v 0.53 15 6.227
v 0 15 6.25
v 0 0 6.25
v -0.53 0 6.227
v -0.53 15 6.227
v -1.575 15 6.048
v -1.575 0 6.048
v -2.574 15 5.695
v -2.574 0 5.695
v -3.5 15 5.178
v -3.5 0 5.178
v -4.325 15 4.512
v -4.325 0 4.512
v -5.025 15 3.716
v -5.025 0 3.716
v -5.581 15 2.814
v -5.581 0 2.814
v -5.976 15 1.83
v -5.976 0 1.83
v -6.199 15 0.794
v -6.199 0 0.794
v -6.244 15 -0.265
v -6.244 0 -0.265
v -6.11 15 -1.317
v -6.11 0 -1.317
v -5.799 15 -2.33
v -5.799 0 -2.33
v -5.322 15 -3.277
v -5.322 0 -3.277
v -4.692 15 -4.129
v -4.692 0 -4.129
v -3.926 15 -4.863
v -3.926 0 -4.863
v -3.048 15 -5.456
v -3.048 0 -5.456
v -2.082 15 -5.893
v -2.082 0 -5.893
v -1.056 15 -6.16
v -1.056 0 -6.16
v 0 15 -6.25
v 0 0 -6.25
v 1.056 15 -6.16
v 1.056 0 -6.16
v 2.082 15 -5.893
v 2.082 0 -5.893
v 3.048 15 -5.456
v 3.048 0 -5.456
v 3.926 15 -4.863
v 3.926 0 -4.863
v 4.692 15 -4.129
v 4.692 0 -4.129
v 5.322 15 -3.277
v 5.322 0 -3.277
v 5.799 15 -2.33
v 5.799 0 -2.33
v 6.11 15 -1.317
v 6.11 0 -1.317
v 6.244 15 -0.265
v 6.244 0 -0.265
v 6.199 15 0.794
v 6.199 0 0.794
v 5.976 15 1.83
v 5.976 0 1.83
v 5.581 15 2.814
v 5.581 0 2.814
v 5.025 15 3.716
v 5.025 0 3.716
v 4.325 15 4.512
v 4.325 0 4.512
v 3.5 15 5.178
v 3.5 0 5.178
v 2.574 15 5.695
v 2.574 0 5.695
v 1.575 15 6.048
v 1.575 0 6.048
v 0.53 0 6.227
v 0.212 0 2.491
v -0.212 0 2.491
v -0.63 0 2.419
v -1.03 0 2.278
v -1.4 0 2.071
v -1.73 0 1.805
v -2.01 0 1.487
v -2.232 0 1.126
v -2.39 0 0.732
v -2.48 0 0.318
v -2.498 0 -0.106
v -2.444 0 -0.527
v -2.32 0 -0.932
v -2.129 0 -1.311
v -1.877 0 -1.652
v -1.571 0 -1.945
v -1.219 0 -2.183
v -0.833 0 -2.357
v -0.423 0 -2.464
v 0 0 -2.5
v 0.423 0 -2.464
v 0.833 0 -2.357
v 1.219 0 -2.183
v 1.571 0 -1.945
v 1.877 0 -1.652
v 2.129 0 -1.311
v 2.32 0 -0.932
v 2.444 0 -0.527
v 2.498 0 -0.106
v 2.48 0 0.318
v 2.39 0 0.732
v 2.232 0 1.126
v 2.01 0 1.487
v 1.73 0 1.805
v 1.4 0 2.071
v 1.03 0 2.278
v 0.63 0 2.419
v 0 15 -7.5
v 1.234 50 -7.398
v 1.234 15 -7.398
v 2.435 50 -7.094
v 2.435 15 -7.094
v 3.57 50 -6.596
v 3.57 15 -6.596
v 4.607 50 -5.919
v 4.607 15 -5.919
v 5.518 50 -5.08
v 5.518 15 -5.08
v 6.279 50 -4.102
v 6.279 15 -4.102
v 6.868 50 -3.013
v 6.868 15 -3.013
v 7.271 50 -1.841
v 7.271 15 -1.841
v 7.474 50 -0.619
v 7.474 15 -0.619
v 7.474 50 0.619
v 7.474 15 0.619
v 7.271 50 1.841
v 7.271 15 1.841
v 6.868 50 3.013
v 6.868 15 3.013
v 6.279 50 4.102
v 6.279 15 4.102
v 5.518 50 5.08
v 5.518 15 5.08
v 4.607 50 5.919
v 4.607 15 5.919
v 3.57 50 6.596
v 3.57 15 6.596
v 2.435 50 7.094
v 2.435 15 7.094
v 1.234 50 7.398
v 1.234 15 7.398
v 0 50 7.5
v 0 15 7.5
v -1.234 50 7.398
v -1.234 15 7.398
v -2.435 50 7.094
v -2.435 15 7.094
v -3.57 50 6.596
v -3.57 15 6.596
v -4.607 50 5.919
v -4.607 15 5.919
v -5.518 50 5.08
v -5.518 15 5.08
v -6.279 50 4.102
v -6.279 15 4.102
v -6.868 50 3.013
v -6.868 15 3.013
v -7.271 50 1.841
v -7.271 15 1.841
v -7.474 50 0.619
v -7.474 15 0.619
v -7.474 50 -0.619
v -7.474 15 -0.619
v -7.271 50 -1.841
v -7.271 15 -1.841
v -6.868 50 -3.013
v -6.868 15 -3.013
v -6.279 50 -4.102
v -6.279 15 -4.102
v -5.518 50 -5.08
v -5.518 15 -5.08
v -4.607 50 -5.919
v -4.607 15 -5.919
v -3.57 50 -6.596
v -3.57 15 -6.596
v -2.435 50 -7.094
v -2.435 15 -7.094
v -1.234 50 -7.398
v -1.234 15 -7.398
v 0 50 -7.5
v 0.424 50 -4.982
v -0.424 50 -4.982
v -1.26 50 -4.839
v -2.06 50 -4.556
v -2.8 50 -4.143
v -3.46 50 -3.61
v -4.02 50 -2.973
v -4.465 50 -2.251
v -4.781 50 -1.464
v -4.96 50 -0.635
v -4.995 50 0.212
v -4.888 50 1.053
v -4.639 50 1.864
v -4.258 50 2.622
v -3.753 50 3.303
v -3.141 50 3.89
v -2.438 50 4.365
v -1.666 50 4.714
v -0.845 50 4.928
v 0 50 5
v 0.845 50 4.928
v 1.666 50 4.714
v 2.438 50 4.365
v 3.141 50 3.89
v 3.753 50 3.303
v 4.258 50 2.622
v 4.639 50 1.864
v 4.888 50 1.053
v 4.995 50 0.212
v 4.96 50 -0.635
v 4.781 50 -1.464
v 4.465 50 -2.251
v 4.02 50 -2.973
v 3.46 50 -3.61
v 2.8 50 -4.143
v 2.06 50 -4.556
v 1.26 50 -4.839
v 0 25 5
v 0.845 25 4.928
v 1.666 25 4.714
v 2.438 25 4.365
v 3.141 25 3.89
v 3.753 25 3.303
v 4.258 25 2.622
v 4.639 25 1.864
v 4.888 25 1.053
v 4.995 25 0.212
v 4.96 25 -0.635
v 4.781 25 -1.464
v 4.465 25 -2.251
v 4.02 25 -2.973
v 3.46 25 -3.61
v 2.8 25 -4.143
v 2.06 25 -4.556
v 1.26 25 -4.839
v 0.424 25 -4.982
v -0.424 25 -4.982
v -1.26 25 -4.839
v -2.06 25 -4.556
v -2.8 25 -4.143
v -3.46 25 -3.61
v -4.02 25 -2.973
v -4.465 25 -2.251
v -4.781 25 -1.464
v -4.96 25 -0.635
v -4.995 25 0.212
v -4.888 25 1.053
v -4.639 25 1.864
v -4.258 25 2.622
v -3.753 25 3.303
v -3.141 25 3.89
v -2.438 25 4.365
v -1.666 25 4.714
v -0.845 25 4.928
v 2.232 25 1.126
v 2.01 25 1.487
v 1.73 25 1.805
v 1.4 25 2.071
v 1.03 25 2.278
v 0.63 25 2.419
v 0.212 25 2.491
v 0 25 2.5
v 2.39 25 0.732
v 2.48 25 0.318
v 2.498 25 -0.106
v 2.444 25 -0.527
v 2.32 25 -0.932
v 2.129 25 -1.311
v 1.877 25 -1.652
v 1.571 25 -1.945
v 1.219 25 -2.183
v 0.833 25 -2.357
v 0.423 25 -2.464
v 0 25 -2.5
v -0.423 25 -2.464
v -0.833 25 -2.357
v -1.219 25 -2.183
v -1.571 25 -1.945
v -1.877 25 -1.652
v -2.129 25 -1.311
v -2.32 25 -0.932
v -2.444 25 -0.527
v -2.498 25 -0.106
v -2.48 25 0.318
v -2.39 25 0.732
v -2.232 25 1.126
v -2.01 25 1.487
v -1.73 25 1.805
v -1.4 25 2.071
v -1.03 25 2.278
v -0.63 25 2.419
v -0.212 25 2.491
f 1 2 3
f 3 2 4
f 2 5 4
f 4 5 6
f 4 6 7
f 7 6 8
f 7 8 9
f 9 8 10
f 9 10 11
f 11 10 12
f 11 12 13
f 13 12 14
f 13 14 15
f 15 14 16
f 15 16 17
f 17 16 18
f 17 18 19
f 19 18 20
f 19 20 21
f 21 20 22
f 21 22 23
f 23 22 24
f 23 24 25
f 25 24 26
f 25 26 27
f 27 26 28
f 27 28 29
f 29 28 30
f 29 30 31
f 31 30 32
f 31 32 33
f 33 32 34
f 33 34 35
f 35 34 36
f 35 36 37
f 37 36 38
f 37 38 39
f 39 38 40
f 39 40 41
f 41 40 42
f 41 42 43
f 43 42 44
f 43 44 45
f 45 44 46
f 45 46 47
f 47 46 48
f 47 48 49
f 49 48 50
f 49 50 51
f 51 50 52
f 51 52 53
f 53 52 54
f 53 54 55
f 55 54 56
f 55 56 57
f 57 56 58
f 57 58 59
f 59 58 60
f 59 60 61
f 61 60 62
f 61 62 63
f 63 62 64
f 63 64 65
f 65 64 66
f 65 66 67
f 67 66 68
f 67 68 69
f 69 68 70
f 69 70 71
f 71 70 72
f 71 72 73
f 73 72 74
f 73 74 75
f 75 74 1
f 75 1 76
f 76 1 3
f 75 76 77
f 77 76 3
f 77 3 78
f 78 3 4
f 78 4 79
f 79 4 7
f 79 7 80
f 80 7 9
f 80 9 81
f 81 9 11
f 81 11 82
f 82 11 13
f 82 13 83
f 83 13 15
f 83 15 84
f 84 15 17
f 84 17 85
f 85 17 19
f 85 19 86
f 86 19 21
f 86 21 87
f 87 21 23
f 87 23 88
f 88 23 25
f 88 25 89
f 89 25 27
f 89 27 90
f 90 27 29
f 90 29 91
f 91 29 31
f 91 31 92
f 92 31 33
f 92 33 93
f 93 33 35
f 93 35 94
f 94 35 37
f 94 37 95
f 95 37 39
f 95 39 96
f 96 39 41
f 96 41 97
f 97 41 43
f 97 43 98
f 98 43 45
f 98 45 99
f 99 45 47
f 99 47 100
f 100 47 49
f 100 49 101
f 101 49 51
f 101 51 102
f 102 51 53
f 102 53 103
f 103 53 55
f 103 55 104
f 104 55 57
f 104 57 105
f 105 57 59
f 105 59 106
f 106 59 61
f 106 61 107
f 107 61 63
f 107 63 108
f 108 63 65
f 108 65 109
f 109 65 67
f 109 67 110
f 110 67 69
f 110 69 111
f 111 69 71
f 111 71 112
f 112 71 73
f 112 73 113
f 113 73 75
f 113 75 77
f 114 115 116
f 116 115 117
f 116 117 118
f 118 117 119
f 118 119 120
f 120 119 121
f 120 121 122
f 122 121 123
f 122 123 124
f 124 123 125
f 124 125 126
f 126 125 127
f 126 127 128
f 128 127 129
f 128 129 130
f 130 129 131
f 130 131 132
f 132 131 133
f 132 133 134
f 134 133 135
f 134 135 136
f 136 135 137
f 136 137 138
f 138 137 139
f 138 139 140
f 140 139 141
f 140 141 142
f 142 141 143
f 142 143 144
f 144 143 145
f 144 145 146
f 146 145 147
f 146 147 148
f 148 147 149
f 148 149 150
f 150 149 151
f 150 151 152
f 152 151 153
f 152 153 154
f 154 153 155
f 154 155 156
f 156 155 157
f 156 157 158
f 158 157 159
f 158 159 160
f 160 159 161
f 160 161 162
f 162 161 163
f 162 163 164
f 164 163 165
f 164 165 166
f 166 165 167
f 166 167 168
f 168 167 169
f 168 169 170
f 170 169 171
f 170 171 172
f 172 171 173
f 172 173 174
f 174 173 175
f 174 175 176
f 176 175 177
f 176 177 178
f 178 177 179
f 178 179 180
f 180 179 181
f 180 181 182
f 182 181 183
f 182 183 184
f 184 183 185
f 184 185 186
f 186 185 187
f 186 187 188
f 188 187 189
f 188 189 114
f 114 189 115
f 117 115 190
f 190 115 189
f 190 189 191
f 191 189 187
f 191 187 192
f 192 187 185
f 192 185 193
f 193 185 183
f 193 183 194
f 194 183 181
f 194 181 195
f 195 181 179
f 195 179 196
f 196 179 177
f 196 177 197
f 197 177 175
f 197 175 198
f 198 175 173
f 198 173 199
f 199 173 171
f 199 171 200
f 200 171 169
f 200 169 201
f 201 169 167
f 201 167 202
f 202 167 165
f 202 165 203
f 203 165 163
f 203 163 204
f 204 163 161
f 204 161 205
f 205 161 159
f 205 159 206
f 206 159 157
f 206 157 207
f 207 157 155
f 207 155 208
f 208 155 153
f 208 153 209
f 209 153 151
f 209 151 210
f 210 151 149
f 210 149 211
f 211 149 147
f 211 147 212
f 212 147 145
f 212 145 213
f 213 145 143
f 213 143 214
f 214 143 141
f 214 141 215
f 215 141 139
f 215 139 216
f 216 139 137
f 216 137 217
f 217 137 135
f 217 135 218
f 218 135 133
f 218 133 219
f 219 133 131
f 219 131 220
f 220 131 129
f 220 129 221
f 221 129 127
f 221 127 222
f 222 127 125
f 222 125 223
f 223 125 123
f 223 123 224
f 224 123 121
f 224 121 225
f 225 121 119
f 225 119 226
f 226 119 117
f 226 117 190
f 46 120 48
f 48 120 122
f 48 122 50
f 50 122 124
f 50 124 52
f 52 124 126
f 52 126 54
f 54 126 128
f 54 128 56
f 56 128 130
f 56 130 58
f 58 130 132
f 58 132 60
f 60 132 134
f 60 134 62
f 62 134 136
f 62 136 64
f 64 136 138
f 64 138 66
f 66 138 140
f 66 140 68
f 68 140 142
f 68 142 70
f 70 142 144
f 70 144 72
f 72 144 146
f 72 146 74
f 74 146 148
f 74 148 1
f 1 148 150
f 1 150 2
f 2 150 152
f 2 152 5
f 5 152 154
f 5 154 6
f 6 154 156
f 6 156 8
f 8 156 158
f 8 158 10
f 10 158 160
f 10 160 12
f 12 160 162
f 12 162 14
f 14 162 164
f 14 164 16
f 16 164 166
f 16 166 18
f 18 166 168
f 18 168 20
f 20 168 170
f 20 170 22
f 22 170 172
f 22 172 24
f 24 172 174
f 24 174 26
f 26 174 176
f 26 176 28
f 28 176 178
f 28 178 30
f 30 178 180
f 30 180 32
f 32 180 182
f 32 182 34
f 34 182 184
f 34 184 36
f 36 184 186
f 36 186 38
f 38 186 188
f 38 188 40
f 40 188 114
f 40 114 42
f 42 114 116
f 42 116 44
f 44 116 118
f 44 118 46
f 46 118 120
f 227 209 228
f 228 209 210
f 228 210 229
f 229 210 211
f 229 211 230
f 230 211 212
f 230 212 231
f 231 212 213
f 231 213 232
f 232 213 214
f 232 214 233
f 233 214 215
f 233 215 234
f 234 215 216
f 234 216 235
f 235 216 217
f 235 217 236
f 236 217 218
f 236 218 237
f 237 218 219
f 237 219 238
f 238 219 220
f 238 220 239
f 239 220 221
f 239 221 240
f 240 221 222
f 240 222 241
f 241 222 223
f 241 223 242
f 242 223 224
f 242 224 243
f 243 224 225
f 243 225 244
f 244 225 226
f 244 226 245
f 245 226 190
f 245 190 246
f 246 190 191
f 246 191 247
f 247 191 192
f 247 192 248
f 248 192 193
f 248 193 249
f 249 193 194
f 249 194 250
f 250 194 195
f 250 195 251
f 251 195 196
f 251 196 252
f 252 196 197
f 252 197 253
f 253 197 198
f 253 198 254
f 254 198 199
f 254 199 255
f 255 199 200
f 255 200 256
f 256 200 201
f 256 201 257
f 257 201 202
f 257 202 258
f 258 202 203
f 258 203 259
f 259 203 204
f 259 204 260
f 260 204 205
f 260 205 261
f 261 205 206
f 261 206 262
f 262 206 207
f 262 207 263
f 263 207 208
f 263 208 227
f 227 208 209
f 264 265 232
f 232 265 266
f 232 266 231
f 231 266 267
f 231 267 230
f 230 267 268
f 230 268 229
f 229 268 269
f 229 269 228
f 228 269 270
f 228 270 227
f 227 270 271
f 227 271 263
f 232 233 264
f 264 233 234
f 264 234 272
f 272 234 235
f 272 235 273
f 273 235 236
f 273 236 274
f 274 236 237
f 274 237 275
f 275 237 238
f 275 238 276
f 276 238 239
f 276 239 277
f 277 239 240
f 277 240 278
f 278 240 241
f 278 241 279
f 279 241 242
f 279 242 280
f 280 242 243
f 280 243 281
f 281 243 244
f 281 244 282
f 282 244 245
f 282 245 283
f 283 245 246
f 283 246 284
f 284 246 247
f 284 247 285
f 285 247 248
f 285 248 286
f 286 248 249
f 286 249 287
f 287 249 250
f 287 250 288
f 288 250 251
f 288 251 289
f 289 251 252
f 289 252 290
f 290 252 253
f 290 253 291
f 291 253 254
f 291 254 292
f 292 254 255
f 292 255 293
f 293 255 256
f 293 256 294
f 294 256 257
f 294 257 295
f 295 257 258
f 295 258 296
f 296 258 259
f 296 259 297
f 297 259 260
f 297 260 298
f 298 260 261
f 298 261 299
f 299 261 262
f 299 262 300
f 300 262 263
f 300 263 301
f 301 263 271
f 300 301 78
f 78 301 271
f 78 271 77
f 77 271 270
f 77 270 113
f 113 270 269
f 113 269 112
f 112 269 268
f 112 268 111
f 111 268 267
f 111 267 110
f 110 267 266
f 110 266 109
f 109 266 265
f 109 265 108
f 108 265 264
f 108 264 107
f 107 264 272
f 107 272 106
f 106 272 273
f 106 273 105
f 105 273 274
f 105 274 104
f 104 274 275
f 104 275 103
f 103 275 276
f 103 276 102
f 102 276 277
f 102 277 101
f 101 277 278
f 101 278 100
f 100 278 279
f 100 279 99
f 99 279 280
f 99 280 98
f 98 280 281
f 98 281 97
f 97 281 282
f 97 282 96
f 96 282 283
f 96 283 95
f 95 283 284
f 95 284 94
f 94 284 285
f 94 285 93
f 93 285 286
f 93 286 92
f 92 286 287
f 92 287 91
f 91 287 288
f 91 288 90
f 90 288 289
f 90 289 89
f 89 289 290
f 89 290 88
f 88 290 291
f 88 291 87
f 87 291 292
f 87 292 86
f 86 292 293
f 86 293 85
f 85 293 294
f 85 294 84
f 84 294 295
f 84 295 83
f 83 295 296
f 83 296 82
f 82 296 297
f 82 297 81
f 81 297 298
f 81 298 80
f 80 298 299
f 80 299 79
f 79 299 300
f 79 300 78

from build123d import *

# Parameters (mm, degrees)
SKETCH1_R           = 6.25
BOSS_EXTRUDE1_DEPTH = 15
SKETCH3_R           = 7.5
BOSS_EXTRUDE2_DEPTH = 35
SKETCH4_R           = 5
CUT_EXTRUDE1_DEPTH  = 25
SKETCH5_R           = 2.5
CUT_EXTRUDE2_DEPTH  = 35


with BuildPart() as part:
    # Sketch1 → Boss-Extrude1 (new body)
    with BuildSketch(Plane(origin=(0, 0, 0), x_dir=(1, 0, 0), z_dir=(0, 1, 0))):
        Circle(SKETCH1_R)
    extrude(amount=BOSS_EXTRUDE1_DEPTH)

    # Sketch3 → Boss-Extrude2 (add)
    with BuildSketch(Plane(origin=(0, 15, 0), x_dir=(1, 0, 0), z_dir=(0, 1, 0))):
        Circle(SKETCH3_R)
    extrude(amount=BOSS_EXTRUDE2_DEPTH)

    # Sketch4 → Cut-Extrude1 (cut)
    with BuildSketch(Plane(origin=(0, 50, 0), x_dir=(1, 0, 0), z_dir=(0, 1, 0))):
        Circle(SKETCH4_R)
    extrude(amount=-CUT_EXTRUDE1_DEPTH, mode=Mode.SUBTRACT)

    # Sketch5 → Cut-Extrude2 (cut)
    with BuildSketch(Plane(origin=(0, 0, 0), x_dir=(-1, 0, 0), z_dir=(0, -1, 0))):
        Circle(SKETCH5_R)
    extrude(amount=-CUT_EXTRUDE2_DEPTH, mode=Mode.SUBTRACT)


solid = part.part
